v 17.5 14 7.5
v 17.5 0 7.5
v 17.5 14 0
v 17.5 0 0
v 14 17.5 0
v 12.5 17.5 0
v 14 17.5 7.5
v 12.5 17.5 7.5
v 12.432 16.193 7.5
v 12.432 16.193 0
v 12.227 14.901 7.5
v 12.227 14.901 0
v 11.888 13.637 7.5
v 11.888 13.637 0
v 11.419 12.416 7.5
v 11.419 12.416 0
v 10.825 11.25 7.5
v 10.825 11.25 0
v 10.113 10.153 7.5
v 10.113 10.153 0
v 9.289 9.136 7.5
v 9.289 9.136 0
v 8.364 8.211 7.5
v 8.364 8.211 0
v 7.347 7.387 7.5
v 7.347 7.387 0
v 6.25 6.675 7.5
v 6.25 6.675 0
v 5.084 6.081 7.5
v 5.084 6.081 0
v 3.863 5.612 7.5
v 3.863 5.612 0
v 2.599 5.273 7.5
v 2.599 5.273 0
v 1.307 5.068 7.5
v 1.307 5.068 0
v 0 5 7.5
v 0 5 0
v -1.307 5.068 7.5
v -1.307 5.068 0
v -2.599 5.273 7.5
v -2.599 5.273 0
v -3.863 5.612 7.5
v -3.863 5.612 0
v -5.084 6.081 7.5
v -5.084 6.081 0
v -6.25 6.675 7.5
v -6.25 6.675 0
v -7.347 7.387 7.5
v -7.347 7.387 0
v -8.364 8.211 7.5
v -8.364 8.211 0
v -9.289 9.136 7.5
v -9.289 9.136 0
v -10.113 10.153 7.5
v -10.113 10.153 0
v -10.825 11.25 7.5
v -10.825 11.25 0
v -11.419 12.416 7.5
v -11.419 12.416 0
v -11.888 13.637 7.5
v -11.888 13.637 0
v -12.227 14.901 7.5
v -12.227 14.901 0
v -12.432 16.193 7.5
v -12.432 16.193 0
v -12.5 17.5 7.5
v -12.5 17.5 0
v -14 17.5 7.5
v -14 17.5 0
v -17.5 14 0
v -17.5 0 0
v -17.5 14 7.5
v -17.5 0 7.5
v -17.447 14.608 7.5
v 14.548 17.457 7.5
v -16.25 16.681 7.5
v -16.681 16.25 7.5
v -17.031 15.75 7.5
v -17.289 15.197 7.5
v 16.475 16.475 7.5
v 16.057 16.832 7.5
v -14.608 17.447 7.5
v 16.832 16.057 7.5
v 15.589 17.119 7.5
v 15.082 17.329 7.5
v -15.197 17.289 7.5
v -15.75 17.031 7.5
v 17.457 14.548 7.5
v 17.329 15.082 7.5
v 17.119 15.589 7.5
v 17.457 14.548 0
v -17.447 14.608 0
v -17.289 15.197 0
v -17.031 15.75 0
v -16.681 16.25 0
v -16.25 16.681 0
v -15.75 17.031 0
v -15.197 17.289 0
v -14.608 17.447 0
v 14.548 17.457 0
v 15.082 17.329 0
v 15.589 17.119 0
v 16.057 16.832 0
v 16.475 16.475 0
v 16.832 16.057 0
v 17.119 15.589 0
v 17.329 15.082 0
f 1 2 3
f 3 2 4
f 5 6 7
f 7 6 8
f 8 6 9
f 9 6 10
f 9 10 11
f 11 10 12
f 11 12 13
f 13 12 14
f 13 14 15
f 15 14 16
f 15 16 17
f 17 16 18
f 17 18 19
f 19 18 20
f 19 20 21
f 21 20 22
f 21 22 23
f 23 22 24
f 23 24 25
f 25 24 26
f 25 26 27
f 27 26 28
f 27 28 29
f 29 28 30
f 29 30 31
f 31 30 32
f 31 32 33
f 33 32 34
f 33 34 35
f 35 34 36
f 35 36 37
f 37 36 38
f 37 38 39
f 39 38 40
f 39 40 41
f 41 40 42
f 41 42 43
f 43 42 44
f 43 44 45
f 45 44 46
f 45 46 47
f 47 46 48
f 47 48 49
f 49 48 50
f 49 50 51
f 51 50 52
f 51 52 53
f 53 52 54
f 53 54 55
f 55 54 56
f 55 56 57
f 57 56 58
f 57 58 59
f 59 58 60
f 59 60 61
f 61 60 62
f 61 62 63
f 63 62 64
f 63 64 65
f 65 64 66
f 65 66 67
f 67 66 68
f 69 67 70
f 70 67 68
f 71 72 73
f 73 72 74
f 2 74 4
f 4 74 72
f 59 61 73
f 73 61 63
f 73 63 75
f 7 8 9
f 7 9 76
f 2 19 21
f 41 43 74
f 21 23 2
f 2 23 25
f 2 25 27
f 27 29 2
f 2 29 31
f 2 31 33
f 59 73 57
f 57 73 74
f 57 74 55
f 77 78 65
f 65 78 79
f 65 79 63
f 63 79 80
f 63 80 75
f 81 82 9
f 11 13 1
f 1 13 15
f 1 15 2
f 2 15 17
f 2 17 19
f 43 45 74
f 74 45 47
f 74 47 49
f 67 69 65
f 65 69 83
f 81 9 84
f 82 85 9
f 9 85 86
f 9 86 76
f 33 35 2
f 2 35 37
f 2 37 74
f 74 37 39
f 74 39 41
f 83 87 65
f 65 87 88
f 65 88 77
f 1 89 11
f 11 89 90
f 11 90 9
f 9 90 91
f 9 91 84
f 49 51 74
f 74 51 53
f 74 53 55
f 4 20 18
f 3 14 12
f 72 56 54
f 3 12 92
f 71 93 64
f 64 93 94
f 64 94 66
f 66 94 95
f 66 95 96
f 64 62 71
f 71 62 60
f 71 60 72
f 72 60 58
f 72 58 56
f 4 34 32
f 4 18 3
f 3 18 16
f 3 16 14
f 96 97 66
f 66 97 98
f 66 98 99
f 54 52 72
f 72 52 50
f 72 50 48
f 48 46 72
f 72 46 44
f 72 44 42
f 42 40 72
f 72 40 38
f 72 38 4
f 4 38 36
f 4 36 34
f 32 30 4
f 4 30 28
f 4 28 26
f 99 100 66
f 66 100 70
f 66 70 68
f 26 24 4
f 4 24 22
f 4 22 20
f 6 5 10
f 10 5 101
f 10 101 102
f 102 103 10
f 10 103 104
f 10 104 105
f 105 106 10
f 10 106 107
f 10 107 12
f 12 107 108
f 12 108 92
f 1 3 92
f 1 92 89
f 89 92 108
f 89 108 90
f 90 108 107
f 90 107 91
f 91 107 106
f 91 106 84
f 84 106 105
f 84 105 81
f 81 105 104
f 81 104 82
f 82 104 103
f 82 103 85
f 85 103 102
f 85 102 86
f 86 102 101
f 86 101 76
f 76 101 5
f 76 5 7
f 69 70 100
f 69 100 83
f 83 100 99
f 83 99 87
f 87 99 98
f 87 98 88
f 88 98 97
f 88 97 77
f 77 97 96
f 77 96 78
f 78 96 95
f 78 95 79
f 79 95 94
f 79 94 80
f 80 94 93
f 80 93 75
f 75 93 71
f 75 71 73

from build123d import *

# Parameters (mm, degrees)
BOSS_EXTRUDE1_DEPTH = 7.5
FILLET1_R           = 3.5


with BuildPart() as part:
    # Sketch1 → Boss-Extrude1 (new body)
    with BuildSketch(Plane.XY):
        with BuildLine():
            Line((-17.5, 0), (17.5, 0))
            Line((17.5, 0), (17.5, 17.5))
            Line((17.5, 17.5), (12.5, 17.5))
            ThreePointArc((12.5, 17.5), (0, 5), (-12.5, 17.5))
            Line((-12.5, 17.5), (-17.5, 17.5))
            Line((-17.5, 17.5), (-17.5, 0))
        make_face()
    extrude(amount=BOSS_EXTRUDE1_DEPTH)

    # Fillet1
    fillet1_edges = [part.edges().sort_by_distance(p)[0] for p in [
        (-17.5, 17.5, 3.75),
        (17.5, 17.5, 3.75),
    ]]
    fillet(fillet1_edges, radius=FILLET1_R)


solid = part.part
